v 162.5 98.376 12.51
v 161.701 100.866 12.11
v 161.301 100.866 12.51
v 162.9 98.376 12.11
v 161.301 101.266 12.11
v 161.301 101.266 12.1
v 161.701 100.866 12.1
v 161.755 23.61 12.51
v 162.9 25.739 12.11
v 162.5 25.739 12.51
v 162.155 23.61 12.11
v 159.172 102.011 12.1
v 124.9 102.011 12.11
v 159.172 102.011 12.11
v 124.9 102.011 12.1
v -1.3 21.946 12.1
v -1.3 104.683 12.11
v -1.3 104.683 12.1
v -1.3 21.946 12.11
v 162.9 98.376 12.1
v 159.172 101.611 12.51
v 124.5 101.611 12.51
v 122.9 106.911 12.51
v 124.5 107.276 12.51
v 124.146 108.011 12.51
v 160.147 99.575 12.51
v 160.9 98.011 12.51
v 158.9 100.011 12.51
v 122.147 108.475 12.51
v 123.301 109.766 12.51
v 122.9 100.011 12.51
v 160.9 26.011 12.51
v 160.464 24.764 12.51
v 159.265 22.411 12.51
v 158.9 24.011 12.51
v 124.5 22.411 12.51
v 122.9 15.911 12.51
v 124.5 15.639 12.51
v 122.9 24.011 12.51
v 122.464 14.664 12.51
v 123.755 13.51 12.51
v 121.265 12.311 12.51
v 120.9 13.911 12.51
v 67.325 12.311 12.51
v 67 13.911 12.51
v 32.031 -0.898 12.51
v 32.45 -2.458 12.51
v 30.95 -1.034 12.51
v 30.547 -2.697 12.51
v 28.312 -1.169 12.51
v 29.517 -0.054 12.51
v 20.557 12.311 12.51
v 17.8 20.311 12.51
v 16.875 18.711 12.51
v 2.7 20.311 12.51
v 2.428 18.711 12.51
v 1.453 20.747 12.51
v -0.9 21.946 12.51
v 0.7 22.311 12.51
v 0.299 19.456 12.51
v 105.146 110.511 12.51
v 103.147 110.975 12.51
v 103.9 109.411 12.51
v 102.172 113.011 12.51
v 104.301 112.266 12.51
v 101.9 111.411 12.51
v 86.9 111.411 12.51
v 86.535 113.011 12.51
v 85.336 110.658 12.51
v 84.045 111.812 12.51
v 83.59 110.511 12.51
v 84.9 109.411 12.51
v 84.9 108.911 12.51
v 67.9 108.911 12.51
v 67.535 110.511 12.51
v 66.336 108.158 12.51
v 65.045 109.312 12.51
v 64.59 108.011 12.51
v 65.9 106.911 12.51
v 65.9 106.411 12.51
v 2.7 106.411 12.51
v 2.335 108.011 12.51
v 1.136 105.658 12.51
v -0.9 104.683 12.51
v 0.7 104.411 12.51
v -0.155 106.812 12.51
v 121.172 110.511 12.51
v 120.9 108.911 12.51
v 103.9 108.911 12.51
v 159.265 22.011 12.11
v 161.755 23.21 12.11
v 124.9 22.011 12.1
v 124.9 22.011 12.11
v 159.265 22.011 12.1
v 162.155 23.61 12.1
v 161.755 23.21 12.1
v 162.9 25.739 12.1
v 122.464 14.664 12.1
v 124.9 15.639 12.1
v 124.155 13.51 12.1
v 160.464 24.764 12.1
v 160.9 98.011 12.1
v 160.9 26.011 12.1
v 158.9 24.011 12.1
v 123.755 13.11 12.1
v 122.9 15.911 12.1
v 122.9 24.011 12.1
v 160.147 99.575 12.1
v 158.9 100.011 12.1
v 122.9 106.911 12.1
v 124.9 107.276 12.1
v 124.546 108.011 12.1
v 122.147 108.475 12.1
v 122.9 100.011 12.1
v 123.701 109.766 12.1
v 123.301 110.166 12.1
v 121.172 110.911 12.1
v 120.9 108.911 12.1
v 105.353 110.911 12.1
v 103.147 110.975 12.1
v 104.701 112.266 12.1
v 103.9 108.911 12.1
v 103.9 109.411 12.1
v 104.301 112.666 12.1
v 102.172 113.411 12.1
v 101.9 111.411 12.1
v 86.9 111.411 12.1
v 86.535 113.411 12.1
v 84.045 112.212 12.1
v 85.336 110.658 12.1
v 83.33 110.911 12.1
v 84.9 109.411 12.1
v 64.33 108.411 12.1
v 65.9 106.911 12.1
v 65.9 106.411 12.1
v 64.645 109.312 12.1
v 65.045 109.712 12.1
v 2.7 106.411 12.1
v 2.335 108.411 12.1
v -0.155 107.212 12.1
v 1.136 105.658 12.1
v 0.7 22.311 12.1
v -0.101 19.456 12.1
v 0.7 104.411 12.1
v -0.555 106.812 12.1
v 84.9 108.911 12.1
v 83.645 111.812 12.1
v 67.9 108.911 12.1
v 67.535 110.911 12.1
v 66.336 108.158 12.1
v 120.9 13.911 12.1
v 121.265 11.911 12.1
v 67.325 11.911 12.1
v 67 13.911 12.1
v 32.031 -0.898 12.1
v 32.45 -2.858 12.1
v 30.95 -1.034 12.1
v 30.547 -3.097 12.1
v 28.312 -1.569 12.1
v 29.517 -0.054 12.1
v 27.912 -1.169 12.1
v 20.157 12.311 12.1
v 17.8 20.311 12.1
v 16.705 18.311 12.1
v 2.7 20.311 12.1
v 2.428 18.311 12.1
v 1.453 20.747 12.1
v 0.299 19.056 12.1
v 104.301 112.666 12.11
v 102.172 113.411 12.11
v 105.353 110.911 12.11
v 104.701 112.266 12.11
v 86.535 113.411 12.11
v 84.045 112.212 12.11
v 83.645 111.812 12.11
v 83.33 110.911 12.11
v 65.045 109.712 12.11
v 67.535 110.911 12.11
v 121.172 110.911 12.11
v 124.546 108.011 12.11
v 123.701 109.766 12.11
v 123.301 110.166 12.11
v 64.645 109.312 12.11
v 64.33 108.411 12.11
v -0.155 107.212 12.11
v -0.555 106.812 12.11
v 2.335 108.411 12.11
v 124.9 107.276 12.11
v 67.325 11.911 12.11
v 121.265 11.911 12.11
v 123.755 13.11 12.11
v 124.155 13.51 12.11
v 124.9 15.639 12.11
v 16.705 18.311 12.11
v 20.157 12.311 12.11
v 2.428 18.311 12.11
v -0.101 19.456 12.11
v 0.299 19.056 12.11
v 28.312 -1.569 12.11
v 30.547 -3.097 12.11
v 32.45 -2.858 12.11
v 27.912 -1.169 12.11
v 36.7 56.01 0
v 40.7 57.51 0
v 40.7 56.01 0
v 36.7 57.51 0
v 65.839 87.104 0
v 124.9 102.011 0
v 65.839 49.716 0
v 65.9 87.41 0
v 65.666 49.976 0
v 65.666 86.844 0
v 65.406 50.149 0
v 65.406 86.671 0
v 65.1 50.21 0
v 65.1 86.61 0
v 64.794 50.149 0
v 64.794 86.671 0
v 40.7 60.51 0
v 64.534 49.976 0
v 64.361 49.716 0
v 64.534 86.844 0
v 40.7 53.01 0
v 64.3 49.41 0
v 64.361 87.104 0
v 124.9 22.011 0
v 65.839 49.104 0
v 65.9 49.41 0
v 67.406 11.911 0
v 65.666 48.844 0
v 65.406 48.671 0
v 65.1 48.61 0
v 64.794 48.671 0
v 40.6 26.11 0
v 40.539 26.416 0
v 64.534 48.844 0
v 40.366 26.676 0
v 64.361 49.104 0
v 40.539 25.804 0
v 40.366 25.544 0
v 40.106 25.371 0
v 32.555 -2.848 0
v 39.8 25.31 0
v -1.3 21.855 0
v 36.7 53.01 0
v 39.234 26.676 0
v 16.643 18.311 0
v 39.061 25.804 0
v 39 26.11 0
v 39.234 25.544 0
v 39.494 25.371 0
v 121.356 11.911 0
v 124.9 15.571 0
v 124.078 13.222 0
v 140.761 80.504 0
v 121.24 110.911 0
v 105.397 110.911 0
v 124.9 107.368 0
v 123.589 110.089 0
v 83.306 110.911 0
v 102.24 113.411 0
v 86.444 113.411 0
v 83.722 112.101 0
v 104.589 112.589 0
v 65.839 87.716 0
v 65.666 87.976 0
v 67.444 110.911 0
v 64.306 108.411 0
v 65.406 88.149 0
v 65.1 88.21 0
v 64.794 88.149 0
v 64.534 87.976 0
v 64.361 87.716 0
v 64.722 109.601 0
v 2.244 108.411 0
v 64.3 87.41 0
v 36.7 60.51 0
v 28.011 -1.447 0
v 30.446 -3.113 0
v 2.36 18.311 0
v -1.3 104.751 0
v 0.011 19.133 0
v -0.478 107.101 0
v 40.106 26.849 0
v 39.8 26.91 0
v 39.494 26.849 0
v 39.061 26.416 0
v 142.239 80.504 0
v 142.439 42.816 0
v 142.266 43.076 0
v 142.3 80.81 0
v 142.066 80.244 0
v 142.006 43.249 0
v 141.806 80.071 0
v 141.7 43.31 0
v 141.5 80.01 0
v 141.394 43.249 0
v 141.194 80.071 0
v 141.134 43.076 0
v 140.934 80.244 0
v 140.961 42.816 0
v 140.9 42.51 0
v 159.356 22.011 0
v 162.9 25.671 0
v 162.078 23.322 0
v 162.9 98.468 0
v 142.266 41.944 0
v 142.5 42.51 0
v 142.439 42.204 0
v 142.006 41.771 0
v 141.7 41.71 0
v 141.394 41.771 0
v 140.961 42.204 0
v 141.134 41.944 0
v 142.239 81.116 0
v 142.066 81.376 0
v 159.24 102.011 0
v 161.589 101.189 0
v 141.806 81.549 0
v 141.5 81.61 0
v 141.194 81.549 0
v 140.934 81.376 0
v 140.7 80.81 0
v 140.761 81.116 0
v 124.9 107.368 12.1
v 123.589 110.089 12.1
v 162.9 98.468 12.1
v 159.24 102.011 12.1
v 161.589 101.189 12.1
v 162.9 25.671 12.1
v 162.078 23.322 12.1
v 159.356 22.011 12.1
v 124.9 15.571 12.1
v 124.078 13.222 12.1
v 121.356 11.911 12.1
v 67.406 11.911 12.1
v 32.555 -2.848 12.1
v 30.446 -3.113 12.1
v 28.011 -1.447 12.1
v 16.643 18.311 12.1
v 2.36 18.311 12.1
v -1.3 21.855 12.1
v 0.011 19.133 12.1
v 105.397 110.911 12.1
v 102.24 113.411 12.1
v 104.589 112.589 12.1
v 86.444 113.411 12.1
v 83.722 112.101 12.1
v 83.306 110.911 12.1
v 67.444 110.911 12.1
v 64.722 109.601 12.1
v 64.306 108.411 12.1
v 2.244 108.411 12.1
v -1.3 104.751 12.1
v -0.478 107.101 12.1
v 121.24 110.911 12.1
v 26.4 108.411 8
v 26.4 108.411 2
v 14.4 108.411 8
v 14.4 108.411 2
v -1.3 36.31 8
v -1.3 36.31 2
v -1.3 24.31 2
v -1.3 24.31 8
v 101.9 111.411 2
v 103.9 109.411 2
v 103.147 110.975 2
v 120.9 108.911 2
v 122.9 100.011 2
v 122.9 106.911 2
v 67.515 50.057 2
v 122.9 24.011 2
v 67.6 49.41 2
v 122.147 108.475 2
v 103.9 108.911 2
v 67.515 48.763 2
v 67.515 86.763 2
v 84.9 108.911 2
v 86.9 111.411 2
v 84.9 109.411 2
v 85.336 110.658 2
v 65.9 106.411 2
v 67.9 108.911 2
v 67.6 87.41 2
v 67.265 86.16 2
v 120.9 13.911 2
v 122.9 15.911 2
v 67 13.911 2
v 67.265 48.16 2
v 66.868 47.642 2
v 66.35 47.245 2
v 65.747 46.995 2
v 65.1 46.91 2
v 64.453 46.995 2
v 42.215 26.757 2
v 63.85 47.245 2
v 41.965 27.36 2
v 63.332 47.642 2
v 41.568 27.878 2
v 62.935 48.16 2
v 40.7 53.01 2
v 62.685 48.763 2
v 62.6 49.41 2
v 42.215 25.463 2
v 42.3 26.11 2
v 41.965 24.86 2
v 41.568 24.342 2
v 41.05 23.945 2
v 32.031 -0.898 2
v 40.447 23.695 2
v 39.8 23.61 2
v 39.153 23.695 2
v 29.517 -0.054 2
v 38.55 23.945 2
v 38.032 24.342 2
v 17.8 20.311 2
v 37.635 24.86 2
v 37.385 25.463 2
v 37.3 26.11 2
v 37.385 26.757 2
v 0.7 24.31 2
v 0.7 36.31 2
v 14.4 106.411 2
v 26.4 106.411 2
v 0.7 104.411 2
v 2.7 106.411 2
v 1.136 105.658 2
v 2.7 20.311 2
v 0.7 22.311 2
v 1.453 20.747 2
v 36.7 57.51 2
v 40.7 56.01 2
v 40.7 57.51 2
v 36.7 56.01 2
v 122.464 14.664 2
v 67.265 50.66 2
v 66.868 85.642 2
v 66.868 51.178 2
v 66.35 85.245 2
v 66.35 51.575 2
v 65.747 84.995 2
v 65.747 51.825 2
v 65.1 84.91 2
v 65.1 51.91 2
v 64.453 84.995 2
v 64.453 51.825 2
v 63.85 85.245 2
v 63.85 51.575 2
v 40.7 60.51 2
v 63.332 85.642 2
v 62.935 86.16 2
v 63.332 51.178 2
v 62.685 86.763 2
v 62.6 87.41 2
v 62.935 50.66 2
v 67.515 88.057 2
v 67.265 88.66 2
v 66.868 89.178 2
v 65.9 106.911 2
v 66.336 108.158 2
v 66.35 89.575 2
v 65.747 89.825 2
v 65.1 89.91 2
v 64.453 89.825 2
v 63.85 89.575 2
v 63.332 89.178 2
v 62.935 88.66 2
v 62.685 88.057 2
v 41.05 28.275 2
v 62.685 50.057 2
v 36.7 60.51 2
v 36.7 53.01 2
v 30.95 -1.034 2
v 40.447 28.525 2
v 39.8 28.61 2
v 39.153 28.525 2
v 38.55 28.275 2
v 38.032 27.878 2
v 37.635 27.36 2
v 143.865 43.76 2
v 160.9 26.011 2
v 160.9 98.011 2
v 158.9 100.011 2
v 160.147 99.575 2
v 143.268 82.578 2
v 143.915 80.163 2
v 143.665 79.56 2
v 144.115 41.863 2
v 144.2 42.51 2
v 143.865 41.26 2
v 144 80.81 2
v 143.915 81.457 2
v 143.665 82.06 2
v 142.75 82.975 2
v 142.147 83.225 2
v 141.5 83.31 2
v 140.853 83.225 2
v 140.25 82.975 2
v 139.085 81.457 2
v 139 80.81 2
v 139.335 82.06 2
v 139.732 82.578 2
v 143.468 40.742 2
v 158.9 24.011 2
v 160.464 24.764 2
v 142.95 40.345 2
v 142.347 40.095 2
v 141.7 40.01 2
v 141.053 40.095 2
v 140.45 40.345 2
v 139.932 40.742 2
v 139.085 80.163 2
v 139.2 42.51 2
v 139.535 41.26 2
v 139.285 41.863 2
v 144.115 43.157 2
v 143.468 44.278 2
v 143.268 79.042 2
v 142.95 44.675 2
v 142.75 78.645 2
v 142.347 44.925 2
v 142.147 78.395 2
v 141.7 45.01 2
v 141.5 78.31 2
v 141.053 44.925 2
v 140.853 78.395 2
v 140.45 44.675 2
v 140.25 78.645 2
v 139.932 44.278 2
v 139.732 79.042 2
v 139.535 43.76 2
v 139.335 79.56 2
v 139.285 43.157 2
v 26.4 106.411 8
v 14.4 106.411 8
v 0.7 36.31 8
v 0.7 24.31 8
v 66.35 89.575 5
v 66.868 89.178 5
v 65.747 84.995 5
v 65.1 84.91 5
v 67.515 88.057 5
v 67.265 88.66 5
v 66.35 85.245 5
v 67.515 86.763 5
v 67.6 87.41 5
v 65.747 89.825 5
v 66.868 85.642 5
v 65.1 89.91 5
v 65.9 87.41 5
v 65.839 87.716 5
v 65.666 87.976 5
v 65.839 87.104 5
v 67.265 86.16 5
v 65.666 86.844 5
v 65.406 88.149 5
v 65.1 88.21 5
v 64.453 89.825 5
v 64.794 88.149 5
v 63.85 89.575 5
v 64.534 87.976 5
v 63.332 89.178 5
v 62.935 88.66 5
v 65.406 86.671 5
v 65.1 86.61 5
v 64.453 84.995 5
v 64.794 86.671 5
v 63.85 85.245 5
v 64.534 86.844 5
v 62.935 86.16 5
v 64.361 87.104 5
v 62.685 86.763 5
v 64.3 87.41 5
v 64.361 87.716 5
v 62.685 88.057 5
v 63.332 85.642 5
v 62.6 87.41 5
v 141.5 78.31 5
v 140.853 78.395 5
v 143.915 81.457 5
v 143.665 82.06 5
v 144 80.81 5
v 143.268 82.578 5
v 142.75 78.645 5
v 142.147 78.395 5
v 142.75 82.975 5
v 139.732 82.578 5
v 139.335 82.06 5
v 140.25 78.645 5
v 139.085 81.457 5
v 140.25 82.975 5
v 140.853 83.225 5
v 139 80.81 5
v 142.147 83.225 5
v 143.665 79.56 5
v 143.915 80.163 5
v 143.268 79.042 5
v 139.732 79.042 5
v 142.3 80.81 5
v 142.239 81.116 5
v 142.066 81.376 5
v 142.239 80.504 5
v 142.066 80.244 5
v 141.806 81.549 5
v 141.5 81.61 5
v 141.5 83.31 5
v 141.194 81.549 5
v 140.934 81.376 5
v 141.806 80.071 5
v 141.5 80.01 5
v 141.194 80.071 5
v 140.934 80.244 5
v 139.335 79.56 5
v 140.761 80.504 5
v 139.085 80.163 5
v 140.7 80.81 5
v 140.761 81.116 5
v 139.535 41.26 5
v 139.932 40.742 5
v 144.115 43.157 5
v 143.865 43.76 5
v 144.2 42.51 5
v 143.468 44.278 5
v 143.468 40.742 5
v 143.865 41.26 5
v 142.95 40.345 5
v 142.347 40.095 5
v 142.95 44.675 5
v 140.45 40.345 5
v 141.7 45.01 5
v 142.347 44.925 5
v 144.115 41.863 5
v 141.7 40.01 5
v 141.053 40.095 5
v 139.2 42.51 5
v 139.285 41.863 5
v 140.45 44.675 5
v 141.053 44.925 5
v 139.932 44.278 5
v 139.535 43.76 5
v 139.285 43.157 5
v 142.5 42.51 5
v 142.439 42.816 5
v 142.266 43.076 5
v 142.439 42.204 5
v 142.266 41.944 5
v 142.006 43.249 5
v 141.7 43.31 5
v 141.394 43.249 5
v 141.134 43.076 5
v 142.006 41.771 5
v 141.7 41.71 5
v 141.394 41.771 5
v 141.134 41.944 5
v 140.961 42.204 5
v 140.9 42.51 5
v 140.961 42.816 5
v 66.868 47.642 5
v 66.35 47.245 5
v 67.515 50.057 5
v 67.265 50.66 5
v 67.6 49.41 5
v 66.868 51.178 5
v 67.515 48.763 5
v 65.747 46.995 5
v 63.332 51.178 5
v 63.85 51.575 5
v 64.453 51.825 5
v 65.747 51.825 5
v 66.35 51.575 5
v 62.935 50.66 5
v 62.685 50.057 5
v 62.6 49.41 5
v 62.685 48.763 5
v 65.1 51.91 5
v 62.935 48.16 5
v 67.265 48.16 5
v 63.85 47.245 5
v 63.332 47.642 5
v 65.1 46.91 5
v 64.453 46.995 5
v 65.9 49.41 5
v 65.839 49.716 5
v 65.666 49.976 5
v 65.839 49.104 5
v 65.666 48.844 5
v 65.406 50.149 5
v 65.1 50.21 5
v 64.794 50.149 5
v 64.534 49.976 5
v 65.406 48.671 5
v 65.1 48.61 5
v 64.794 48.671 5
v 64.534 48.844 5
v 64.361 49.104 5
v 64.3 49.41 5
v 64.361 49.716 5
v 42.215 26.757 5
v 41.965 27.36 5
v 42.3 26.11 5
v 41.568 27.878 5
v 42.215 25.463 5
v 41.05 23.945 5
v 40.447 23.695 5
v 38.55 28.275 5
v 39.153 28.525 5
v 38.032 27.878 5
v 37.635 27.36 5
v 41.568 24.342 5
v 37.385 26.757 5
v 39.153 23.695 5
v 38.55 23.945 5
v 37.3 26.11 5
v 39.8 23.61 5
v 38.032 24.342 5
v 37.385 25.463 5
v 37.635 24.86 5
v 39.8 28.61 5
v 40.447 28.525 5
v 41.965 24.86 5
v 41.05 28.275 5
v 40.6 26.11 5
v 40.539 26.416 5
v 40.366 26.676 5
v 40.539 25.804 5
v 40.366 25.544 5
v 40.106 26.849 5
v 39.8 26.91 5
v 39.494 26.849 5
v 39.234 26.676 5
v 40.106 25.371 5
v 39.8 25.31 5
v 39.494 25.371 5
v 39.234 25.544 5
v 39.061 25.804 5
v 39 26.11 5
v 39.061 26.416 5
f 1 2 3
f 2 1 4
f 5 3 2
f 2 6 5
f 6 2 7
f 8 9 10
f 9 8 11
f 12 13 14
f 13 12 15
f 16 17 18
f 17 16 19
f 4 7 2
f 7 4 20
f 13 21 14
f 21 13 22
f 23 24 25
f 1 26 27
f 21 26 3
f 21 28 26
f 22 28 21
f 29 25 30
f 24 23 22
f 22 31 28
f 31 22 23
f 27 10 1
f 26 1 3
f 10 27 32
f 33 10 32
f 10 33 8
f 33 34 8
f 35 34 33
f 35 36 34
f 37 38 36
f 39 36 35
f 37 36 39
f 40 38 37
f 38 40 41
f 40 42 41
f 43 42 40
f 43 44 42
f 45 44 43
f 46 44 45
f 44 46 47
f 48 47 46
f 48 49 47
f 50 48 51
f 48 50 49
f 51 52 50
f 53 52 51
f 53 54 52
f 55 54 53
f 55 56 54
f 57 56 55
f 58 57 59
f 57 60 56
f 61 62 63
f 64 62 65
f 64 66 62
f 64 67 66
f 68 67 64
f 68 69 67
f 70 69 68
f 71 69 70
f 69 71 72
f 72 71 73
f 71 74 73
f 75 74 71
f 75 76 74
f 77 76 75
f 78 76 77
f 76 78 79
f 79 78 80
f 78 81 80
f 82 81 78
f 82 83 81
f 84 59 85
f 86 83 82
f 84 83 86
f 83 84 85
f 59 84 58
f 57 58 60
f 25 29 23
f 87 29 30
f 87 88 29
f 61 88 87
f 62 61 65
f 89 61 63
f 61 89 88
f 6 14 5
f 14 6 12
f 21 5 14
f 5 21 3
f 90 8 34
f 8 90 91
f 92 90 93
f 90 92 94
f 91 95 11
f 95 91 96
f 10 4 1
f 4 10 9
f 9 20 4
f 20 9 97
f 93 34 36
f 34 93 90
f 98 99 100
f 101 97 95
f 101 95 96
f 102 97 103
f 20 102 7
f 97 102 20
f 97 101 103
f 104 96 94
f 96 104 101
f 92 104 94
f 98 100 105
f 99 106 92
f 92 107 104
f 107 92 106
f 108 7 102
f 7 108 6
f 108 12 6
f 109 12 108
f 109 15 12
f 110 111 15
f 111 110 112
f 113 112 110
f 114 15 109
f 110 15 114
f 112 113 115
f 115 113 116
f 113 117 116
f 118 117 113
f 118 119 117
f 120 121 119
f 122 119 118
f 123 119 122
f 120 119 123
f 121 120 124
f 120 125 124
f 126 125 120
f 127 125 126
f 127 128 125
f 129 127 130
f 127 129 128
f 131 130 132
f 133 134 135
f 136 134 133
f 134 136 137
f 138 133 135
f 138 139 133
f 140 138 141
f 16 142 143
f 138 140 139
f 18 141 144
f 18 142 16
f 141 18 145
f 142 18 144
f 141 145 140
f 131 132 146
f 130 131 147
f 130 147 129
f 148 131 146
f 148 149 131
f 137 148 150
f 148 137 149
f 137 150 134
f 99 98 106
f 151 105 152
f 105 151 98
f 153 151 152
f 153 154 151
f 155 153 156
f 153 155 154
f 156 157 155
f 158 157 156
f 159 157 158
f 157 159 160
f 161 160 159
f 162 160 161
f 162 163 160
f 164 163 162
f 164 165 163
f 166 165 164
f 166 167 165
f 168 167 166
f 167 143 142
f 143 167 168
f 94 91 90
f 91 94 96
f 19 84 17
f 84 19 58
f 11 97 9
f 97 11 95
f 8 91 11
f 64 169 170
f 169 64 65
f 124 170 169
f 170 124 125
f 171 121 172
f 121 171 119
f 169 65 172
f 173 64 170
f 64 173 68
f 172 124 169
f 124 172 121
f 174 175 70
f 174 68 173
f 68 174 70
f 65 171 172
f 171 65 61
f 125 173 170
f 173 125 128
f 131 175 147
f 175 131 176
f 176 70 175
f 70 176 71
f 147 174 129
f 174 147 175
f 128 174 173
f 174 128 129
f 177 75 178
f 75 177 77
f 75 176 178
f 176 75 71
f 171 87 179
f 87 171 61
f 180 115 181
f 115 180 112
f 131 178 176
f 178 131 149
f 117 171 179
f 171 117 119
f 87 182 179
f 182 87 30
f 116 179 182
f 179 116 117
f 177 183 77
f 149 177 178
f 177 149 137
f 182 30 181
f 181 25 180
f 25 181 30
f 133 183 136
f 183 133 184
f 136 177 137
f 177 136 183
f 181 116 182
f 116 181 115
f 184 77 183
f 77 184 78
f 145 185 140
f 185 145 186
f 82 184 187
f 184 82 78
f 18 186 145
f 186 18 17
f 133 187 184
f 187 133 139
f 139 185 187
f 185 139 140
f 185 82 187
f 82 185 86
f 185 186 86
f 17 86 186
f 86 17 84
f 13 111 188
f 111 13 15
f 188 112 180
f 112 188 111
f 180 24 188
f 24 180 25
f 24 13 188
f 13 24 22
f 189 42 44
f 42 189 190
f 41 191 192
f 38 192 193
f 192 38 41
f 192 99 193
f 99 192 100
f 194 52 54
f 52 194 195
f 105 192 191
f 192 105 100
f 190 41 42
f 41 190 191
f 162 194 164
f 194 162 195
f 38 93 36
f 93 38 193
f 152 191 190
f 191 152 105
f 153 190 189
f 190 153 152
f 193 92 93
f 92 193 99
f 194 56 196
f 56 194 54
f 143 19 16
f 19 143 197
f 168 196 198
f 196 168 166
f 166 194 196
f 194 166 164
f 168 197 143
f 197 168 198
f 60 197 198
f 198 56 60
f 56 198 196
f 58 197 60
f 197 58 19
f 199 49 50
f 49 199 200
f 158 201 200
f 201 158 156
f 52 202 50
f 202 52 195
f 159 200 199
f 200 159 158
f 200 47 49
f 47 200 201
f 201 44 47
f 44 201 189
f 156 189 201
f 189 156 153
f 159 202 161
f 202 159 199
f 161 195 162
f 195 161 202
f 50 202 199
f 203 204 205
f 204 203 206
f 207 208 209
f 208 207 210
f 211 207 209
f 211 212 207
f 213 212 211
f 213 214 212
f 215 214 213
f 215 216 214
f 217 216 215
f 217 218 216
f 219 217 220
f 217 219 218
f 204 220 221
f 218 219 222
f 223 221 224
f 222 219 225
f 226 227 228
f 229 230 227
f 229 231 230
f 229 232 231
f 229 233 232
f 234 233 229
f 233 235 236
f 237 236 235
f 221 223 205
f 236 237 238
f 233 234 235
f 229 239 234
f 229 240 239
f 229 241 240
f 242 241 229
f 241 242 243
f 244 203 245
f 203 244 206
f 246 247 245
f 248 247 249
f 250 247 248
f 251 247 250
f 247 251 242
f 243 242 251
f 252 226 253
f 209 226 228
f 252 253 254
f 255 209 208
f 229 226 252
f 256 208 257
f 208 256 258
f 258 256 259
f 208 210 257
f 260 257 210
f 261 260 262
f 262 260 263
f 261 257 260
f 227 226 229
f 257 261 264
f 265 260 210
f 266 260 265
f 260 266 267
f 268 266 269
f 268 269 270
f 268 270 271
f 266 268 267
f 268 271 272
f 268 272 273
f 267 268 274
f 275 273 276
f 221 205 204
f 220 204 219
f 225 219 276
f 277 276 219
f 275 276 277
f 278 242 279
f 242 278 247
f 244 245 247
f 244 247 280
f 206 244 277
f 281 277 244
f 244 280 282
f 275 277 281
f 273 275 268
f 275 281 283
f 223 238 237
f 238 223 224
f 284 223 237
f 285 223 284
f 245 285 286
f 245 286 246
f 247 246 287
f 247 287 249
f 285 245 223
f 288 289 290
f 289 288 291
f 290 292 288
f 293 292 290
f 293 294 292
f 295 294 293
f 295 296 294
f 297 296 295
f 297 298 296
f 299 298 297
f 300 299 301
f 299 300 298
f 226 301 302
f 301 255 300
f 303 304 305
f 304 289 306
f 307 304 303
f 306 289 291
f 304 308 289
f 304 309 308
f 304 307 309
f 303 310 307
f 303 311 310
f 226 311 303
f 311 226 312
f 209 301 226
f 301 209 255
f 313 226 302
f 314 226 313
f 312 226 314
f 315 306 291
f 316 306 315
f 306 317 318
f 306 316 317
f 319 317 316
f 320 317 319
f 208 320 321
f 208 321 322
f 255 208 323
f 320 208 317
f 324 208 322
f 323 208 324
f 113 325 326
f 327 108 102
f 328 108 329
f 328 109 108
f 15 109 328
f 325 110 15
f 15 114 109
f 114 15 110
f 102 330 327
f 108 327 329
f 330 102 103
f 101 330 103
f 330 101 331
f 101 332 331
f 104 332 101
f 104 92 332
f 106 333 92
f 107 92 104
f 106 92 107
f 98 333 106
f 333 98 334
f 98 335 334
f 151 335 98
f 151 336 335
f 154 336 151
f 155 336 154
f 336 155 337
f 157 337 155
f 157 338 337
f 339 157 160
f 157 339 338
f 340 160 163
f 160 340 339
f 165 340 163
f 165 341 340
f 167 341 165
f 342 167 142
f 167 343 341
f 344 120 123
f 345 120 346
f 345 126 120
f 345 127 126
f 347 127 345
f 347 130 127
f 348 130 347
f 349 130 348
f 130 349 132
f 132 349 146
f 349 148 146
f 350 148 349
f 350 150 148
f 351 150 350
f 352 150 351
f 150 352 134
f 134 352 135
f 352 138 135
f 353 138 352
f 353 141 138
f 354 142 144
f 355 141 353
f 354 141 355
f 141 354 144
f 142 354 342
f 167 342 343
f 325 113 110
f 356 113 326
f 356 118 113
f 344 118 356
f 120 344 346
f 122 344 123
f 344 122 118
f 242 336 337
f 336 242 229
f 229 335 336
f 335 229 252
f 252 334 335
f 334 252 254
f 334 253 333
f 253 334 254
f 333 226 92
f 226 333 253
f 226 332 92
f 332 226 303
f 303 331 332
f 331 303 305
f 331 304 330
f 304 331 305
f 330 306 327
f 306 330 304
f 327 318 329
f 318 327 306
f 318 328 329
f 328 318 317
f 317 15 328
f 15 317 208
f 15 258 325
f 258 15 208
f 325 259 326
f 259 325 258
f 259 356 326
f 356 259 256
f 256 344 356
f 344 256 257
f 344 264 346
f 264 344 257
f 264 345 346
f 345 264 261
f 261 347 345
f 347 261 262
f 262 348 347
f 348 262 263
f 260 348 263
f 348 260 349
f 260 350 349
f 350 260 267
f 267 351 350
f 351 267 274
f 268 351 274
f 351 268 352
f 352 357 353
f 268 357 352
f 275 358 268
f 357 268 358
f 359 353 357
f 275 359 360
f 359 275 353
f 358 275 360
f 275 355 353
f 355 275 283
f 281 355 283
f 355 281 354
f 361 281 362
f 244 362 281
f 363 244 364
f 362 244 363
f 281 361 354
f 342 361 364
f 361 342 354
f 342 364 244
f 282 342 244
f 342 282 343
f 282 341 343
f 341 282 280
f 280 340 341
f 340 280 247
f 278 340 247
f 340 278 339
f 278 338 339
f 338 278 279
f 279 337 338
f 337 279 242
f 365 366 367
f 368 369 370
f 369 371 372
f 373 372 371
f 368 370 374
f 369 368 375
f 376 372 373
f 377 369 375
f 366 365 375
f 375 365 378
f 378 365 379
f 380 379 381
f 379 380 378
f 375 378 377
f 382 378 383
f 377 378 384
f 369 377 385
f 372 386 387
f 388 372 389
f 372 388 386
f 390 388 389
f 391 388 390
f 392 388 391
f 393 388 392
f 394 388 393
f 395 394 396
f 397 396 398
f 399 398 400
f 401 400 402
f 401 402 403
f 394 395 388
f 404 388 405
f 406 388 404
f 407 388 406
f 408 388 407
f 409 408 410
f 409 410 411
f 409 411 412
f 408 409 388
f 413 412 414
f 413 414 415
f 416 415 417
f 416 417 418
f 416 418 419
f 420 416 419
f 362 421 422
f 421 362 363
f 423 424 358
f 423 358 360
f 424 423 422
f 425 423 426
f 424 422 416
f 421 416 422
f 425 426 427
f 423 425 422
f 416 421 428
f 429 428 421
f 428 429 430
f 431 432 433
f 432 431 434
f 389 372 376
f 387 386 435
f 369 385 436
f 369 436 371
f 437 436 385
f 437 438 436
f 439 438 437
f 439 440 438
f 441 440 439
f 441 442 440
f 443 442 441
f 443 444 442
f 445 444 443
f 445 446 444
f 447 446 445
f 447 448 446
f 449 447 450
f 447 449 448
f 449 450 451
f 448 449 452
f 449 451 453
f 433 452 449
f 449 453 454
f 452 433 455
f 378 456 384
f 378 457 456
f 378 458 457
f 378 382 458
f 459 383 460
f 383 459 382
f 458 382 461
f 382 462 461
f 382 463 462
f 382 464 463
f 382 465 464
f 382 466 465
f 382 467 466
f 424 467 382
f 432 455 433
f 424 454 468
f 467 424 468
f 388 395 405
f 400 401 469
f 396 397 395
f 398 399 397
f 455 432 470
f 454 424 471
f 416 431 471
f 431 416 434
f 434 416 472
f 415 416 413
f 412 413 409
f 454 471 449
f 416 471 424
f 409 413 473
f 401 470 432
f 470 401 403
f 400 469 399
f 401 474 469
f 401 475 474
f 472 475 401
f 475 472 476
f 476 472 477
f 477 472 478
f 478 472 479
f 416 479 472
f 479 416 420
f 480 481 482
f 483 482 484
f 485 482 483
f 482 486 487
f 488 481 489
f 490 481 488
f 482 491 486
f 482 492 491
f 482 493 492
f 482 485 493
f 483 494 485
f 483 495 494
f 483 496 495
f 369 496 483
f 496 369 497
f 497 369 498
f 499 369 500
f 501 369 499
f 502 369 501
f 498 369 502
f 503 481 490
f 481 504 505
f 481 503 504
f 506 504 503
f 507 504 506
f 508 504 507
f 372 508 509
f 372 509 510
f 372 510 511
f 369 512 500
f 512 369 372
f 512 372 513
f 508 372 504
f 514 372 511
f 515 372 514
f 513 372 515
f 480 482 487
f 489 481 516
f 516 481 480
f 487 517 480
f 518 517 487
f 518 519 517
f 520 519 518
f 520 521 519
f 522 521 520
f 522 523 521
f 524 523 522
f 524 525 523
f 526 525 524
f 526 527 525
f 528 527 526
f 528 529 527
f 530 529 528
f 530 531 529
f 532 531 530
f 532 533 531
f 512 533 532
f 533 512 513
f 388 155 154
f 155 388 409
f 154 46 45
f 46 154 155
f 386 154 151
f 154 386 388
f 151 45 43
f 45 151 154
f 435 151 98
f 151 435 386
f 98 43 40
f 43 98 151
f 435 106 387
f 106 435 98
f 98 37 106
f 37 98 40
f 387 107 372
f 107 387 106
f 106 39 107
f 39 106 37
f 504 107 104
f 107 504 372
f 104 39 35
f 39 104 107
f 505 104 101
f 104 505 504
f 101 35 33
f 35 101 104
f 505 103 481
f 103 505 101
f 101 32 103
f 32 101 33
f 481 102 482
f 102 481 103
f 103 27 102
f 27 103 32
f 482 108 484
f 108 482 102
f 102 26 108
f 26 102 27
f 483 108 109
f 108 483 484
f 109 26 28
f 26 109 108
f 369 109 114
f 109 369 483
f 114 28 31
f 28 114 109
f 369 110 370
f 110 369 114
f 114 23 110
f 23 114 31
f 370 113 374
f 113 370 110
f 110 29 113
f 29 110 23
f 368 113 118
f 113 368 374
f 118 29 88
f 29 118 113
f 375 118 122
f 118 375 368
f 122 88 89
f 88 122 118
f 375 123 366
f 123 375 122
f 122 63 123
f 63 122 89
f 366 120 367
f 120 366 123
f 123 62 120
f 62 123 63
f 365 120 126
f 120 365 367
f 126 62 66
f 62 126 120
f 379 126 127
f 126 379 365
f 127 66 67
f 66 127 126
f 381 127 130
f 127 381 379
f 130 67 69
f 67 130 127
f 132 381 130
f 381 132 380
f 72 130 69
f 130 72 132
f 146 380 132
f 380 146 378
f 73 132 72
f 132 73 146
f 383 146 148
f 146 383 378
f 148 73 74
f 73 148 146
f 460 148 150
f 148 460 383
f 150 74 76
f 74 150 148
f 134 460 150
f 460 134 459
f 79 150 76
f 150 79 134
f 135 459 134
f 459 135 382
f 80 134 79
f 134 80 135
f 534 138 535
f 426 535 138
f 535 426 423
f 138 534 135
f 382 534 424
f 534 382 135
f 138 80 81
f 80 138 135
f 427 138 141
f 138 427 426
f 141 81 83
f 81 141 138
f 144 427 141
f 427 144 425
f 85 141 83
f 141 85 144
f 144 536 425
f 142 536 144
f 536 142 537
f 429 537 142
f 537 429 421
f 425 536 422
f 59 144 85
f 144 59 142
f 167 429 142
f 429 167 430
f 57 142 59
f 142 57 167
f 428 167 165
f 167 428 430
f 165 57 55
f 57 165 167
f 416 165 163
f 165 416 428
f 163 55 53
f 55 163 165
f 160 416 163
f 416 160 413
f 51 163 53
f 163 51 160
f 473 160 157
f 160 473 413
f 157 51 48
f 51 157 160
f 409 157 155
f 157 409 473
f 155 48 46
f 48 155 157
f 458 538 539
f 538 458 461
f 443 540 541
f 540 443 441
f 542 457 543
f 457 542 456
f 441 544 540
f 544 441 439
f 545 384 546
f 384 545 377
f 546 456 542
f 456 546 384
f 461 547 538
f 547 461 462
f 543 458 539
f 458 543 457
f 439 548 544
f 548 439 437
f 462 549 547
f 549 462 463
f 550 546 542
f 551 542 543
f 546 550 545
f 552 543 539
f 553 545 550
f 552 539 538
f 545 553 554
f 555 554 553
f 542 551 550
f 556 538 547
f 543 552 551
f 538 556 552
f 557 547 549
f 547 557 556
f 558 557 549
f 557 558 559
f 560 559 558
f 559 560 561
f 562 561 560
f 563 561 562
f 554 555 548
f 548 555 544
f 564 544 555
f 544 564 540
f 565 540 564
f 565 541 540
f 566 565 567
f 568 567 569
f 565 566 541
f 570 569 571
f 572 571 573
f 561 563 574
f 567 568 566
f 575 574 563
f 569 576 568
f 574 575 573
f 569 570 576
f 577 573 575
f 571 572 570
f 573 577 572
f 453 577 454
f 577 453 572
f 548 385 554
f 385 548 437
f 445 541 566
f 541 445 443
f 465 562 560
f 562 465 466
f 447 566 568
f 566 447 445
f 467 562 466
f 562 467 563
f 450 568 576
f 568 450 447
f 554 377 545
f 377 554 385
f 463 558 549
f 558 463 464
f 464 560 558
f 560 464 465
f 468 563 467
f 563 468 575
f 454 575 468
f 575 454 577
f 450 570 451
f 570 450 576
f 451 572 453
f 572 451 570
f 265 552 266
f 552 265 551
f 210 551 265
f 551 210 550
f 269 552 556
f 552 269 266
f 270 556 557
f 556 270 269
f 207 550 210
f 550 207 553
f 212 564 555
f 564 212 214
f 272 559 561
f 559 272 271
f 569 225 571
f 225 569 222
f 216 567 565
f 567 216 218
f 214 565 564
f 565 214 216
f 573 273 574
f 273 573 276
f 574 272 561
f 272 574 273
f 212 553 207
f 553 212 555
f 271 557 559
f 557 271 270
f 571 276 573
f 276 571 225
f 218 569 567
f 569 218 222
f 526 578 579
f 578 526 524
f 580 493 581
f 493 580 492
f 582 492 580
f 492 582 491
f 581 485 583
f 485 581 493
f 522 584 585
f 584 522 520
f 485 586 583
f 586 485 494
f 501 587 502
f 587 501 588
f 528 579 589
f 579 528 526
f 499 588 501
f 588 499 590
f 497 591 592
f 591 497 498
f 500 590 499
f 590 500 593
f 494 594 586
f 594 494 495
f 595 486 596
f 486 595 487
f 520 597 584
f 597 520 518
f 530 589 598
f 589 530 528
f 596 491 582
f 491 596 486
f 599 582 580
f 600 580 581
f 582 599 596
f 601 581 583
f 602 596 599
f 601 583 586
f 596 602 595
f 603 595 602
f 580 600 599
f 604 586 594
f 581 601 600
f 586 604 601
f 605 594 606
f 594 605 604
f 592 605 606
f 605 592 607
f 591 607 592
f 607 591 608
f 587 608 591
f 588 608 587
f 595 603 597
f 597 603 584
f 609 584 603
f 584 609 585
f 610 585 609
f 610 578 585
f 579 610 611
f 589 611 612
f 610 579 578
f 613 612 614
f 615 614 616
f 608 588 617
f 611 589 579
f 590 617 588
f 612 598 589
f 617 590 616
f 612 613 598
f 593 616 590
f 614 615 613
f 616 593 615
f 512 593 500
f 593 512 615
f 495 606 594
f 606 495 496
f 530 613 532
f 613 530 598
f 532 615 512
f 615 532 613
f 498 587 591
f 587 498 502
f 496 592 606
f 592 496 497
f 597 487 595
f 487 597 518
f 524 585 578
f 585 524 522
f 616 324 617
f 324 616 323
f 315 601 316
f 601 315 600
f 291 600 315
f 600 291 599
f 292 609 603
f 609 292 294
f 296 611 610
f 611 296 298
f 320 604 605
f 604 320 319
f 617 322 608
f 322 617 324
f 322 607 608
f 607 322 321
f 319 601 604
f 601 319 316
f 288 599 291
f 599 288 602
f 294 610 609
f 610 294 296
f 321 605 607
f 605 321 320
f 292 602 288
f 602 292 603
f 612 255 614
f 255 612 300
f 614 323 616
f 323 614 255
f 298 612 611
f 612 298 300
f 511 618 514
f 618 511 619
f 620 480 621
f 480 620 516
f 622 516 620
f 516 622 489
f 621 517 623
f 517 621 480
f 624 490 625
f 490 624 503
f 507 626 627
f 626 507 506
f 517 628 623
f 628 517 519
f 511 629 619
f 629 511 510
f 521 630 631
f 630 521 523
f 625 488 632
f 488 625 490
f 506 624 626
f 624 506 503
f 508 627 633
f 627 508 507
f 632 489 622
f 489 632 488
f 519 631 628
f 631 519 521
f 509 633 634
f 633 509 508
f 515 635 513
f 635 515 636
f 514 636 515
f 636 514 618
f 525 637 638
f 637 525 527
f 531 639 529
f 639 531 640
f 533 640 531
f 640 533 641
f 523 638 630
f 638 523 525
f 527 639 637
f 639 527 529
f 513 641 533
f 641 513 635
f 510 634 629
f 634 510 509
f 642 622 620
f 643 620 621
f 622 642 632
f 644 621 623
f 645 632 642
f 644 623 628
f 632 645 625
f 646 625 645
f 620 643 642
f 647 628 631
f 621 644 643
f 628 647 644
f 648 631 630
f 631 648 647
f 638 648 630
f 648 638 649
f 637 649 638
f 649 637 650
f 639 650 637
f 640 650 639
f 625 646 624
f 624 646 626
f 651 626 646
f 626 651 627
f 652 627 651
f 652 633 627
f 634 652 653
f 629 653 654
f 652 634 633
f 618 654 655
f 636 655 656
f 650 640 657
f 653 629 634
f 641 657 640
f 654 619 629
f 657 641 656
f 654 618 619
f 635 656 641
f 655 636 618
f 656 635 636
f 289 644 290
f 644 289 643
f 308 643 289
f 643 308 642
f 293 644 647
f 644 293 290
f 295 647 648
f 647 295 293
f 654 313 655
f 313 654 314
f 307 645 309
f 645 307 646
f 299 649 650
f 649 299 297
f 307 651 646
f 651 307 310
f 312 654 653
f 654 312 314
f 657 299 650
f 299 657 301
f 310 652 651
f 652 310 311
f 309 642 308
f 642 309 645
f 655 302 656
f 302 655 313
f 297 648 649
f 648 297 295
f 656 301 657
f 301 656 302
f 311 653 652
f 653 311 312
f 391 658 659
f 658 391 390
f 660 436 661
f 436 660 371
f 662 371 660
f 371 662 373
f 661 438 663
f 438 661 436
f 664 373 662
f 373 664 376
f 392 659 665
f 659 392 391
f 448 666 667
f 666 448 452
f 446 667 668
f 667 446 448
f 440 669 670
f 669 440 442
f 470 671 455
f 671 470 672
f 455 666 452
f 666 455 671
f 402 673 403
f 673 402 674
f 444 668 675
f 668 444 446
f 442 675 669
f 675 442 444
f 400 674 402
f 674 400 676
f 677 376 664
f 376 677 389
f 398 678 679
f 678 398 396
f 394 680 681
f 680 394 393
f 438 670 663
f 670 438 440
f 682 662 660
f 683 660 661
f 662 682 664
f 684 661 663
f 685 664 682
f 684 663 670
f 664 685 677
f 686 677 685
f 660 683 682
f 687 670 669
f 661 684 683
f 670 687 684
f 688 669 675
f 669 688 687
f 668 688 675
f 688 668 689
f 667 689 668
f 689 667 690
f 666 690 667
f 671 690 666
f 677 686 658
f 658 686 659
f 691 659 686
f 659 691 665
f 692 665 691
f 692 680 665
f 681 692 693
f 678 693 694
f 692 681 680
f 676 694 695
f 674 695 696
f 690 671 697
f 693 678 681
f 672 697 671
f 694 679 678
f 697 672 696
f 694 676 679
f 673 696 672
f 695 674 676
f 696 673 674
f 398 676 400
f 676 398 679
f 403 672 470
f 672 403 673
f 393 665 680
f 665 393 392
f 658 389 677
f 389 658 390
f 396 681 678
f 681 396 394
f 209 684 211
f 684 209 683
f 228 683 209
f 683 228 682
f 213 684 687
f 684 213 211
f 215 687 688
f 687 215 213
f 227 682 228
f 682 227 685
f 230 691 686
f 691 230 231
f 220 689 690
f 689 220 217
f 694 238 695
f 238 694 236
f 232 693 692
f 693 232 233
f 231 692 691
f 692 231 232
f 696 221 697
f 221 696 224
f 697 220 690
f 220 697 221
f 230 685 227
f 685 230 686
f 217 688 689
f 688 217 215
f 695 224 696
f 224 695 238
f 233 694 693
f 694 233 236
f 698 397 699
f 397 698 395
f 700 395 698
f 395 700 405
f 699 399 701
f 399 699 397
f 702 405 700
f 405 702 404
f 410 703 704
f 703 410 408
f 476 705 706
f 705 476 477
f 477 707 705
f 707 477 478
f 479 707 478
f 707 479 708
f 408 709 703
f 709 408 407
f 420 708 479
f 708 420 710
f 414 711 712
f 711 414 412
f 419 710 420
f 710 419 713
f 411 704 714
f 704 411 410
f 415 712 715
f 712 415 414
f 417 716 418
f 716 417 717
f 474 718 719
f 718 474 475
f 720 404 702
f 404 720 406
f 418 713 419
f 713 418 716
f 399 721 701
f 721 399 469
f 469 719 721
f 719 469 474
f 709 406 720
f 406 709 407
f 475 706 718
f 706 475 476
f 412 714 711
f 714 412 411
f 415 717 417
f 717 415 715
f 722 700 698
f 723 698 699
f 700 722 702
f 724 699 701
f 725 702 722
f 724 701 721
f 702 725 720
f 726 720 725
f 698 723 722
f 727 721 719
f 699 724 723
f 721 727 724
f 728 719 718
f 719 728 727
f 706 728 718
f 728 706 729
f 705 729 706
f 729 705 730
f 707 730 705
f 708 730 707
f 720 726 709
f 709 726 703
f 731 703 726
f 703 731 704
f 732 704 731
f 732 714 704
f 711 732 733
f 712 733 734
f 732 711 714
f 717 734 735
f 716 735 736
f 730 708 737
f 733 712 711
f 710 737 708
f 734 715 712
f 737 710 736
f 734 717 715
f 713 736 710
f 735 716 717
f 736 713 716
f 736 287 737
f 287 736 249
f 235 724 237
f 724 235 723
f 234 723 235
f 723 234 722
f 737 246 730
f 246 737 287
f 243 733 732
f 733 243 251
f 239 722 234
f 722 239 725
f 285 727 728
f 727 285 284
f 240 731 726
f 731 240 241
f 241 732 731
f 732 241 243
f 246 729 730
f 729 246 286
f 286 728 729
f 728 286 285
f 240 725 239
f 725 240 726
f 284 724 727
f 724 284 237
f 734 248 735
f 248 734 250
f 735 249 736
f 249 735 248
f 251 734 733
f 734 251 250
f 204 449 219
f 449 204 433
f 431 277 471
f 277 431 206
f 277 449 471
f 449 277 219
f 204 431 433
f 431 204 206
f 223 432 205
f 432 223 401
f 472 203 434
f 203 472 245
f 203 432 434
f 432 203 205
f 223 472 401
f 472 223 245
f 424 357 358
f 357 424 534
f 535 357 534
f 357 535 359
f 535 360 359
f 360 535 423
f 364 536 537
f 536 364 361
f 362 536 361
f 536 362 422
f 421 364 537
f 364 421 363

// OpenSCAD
difference() {
	union() {
		difference() {
			union() {
				difference() {
					union() {
						difference() {
							union() {
								difference() {
									union() {
										difference() {
											union() {
												linear_extrude(height = 12.1) {
													offset(chamfer = false, delta = 2.0) {
														offset(r = 2.0) {
															offset(chamfer = false, delta = -2.0) {
																polygon(points = [[122.9, 100.0111], [122.9, 108.9111], [103.9, 108.9111], [103.9, 111.4111], [84.9, 111.4111], [84.9, 108.9111], [65.9, 108.9111], [65.9, 106.4111], [0.7, 106.4111], [0.7, 20.311099999999996], [17.8, 20.311099999999996], [30.4, -1.5888999999999953], [67, 13.911100000000005], [122.9, 13.911100000000005], [122.9, 24.0111], [160.9, 24.0111], [160.9, 100.0111]]);
															}
														}
													}
												}
												translate(v = [0, 0, 12.1]) {
													minkowski() {
														linear_extrude(height = 0.01) {
															offset(chamfer = false, delta = -0.4) {
																offset(chamfer = false, delta = 2.0) {
																	offset(r = 2.0) {
																		offset(chamfer = false, delta = -2.0) {
																			polygon(points = [[122.9, 100.0111], [122.9, 108.9111], [103.9, 108.9111], [103.9, 111.4111], [84.9, 111.4111], [84.9, 108.9111], [65.9, 108.9111], [65.9, 106.4111], [0.7, 106.4111], [0.7, 20.311099999999996], [17.8, 20.311099999999996], [30.4, -1.5888999999999953], [67, 13.911100000000005], [122.9, 13.911100000000005], [122.9, 24.0111], [160.9, 24.0111], [160.9, 100.0111]]);
																		}
																	}
																}
															}
														}
														cylinder($fn = 4, h = 0.4, r1 = 0.4, r2 = 0);
													}
												}
											}
											translate(v = [0, 0, 2.0]) {
												linear_extrude(height = 11.5) {
													offset(r = 2.0) {
														offset(chamfer = false, delta = -2.0) {
															polygon(points = [[122.9, 100.0111], [122.9, 108.9111], [103.9, 108.9111], [103.9, 111.4111], [84.9, 111.4111], [84.9, 108.9111], [65.9, 108.9111], [65.9, 106.4111], [0.7, 106.4111], [0.7, 20.311099999999996], [17.8, 20.311099999999996], [30.4, -1.5888999999999953], [67, 13.911100000000005], [122.9, 13.911100000000005], [122.9, 24.0111], [160.9, 24.0111], [160.9, 100.0111]]);
														}
													}
												}
											}
										}
										translate(v = [65.1, 87.41, 2.0]) {
											cylinder($fn = 24, d = 5.0, h = 3.0);
										}
									}
									translate(v = [65.1, 87.41, -1]) {
										cylinder($fn = 16, d = 1.6, h = 7.0);
									}
								}
								translate(v = [141.5, 80.81, 2.0]) {
									cylinder($fn = 24, d = 5.0, h = 3.0);
								}
							}
							translate(v = [141.5, 80.81, -1]) {
								cylinder($fn = 16, d = 1.6, h = 7.0);
							}
						}
						translate(v = [141.7, 42.51, 2.0]) {
							cylinder($fn = 24, d = 5.0, h = 3.0);
						}
					}
					translate(v = [141.7, 42.51, -1]) {
						cylinder($fn = 16, d = 1.6, h = 7.0);
					}
				}
				translate(v = [65.1, 49.41, 2.0]) {
					cylinder($fn = 24, d = 5.0, h = 3.0);
				}
			}
			translate(v = [65.1, 49.41, -1]) {
				cylinder($fn = 16, d = 1.6, h = 7.0);
			}
		}
		translate(v = [39.8, 26.11, 2.0]) {
			cylinder($fn = 24, d = 5.0, h = 3.0);
		}
	}
	translate(v = [39.8, 26.11, -1]) {
		cylinder($fn = 16, d = 1.6, h = 7.0);
	}
	translate(v = [36.7, 57.51, -1]) {
		cube(size = [4, 3, 14.5]);
	}
	translate(v = [36.7, 53.01, -1]) {
		cube(size = [4, 3, 14.5]);
	}
	translate(v = [20.4, 105.01, 5.0]) {
		cube(center = true, size = [12.0, 8.0, 6.0]);
	}
	translate(v = [2.4, 30.31, 5.0]) {
		cube(center = true, size = [8.0, 12.0, 6.0]);
	}
}
